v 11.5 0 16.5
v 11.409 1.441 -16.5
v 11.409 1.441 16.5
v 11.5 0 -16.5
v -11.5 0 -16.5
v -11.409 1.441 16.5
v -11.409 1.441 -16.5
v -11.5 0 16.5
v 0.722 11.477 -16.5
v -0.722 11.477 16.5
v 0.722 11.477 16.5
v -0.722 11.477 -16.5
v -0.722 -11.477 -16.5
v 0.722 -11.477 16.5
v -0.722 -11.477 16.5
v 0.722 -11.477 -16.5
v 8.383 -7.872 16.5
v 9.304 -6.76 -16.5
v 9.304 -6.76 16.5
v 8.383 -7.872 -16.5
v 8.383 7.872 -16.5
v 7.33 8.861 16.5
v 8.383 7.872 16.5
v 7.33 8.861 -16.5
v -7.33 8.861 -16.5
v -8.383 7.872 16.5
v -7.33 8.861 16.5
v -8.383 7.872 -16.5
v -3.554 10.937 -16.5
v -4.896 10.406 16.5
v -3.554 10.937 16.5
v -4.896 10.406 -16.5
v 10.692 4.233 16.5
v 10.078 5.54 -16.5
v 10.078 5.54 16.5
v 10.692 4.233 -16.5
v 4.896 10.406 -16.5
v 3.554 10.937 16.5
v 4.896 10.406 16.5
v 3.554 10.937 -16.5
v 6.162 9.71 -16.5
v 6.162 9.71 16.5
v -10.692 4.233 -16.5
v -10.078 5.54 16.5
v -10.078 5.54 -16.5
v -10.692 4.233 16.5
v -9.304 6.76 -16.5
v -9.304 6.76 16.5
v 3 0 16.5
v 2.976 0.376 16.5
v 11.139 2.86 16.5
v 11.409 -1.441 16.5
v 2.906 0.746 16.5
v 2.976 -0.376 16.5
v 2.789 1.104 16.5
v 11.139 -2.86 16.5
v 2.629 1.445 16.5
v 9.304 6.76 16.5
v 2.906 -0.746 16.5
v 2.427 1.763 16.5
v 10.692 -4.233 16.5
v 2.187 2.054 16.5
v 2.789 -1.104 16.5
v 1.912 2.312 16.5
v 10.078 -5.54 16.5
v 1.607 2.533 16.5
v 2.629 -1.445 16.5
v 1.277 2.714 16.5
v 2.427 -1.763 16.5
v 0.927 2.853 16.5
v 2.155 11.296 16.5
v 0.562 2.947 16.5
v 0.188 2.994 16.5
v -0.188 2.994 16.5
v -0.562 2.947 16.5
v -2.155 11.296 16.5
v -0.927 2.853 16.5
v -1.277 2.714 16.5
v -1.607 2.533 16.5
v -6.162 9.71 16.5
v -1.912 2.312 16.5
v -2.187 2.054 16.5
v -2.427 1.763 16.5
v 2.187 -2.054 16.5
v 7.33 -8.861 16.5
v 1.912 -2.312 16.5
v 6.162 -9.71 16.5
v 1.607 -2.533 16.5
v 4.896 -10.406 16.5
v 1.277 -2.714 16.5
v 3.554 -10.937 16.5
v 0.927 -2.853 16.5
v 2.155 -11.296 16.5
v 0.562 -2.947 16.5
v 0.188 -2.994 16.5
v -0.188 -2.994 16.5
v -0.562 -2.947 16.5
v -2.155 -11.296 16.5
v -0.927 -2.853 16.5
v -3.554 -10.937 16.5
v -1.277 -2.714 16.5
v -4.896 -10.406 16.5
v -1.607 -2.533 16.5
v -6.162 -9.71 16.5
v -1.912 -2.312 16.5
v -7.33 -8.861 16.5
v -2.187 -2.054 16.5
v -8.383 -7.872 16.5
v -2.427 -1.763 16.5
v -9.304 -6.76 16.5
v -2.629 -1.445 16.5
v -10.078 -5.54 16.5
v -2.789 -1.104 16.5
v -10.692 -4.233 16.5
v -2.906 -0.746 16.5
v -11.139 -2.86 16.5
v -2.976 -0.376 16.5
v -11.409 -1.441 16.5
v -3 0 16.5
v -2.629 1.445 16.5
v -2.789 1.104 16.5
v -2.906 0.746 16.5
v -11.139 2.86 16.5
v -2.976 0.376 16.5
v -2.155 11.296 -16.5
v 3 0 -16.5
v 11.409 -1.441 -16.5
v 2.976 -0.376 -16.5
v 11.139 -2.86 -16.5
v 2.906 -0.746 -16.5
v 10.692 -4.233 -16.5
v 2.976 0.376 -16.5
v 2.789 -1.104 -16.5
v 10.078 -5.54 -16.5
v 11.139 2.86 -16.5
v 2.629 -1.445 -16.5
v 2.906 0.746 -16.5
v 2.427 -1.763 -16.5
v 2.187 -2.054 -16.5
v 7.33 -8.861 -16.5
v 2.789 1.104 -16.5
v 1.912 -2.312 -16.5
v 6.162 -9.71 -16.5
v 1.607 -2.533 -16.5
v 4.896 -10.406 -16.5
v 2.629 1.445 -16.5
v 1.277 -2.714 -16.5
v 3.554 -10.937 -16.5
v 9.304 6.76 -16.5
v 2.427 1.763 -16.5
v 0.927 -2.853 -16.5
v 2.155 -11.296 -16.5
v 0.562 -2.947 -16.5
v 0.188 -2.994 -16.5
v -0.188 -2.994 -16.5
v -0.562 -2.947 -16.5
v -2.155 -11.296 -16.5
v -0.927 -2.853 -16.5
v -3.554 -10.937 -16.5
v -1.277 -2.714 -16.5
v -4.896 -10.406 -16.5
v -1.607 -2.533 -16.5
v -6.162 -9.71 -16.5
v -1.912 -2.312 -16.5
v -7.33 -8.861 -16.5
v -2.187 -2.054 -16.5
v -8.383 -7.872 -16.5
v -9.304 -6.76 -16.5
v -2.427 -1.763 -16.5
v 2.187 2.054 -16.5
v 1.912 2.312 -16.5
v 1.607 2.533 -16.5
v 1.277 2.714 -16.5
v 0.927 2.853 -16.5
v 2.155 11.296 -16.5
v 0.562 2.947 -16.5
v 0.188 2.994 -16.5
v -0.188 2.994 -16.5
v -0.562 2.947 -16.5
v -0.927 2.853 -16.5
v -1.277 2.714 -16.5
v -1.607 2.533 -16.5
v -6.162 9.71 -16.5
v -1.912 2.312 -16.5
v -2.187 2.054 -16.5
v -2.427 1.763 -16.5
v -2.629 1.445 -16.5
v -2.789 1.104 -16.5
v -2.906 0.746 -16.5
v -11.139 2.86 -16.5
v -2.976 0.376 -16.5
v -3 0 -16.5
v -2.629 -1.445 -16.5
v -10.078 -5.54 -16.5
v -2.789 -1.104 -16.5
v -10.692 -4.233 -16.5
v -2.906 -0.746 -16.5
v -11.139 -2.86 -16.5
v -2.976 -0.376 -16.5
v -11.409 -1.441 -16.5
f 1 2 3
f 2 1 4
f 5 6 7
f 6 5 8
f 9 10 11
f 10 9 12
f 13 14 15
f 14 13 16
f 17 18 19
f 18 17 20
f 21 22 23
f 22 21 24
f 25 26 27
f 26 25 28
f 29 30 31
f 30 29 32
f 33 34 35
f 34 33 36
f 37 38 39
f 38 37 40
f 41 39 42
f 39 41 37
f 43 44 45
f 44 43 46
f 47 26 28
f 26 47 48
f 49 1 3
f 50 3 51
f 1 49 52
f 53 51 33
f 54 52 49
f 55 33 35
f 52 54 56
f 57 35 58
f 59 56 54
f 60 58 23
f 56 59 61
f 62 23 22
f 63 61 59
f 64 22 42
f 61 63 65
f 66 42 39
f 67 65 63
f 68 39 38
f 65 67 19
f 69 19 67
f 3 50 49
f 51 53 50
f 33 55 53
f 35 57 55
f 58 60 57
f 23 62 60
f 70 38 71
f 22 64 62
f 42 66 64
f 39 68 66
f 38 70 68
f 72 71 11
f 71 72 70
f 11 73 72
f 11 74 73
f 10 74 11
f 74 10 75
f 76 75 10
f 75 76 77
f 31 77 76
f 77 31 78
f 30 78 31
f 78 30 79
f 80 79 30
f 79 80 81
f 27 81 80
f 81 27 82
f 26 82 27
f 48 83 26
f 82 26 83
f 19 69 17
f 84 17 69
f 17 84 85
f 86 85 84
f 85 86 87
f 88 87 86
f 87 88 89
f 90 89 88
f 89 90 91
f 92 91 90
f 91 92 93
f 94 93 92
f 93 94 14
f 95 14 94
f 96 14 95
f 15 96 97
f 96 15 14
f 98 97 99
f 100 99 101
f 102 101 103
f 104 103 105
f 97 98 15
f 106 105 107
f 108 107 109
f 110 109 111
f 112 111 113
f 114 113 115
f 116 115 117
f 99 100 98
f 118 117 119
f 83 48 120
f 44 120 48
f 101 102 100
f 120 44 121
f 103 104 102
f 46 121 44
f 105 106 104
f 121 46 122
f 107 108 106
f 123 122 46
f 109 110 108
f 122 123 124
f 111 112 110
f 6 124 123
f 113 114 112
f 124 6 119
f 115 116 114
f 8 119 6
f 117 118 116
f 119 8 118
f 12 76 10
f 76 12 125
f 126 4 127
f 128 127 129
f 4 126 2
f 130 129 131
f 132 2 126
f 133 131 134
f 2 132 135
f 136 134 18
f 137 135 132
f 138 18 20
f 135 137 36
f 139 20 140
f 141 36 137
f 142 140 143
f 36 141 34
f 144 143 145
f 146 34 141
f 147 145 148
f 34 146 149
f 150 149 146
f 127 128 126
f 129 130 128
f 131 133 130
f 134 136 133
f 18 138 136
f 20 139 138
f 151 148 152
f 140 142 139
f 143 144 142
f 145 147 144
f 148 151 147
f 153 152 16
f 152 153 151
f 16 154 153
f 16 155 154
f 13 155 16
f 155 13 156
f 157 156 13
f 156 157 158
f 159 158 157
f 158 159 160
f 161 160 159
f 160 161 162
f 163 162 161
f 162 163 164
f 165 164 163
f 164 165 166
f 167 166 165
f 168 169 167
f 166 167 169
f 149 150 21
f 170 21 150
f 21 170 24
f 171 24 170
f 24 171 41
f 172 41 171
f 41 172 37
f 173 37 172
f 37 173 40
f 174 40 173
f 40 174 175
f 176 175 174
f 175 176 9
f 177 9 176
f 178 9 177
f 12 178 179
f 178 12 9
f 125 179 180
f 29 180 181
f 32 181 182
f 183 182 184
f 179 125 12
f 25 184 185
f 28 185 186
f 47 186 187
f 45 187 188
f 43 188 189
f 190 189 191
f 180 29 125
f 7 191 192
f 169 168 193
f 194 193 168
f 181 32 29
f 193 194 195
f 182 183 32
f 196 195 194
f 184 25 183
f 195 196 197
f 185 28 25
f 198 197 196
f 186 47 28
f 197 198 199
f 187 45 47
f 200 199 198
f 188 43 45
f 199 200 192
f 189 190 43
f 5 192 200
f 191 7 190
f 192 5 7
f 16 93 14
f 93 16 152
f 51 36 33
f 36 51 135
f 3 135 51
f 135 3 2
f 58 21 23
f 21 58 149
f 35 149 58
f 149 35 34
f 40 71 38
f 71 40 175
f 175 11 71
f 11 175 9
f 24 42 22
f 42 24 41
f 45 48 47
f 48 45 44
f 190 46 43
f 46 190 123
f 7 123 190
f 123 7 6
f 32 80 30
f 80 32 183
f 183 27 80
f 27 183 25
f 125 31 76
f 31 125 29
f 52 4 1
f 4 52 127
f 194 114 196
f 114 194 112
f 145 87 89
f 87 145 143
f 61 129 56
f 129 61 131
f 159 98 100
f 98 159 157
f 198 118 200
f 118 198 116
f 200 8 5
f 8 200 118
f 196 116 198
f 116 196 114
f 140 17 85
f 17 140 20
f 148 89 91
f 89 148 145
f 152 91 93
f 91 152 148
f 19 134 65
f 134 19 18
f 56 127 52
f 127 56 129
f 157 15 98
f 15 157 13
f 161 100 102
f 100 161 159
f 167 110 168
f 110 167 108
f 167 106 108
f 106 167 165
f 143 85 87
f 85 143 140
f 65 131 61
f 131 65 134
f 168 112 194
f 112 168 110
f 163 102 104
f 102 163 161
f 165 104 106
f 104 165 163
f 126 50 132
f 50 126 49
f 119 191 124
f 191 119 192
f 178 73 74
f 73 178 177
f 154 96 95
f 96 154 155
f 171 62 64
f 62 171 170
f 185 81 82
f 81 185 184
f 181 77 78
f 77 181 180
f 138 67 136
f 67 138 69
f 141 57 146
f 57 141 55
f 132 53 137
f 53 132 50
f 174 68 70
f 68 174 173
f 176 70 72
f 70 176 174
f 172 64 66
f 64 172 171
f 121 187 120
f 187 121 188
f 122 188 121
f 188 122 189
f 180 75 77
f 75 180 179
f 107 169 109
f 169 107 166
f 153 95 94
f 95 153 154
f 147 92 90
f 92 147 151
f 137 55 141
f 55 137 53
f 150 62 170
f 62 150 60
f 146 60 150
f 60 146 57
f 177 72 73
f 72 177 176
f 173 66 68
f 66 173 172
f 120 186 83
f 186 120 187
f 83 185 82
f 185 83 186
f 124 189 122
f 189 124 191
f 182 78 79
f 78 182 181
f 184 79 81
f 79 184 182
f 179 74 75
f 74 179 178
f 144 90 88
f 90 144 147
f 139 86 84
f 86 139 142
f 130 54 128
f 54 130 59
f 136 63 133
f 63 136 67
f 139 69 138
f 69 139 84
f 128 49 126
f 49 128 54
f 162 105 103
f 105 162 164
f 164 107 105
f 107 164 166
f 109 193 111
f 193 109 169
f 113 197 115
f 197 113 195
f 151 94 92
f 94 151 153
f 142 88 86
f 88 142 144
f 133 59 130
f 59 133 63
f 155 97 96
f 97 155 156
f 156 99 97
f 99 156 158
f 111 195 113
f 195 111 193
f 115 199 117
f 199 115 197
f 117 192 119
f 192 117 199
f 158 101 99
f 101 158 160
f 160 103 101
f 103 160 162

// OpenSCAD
$fn = 50;


difference() {
	union() {
		translate(v = [0, 0, -16.5000000000]) {
			cylinder(h = 33, r = 11.5000000000);
		}
	}
	union() {
		translate(v = [0, 0, -100.0000000000]) {
			cylinder(h = 200, r = 3);
		}
	}
}
